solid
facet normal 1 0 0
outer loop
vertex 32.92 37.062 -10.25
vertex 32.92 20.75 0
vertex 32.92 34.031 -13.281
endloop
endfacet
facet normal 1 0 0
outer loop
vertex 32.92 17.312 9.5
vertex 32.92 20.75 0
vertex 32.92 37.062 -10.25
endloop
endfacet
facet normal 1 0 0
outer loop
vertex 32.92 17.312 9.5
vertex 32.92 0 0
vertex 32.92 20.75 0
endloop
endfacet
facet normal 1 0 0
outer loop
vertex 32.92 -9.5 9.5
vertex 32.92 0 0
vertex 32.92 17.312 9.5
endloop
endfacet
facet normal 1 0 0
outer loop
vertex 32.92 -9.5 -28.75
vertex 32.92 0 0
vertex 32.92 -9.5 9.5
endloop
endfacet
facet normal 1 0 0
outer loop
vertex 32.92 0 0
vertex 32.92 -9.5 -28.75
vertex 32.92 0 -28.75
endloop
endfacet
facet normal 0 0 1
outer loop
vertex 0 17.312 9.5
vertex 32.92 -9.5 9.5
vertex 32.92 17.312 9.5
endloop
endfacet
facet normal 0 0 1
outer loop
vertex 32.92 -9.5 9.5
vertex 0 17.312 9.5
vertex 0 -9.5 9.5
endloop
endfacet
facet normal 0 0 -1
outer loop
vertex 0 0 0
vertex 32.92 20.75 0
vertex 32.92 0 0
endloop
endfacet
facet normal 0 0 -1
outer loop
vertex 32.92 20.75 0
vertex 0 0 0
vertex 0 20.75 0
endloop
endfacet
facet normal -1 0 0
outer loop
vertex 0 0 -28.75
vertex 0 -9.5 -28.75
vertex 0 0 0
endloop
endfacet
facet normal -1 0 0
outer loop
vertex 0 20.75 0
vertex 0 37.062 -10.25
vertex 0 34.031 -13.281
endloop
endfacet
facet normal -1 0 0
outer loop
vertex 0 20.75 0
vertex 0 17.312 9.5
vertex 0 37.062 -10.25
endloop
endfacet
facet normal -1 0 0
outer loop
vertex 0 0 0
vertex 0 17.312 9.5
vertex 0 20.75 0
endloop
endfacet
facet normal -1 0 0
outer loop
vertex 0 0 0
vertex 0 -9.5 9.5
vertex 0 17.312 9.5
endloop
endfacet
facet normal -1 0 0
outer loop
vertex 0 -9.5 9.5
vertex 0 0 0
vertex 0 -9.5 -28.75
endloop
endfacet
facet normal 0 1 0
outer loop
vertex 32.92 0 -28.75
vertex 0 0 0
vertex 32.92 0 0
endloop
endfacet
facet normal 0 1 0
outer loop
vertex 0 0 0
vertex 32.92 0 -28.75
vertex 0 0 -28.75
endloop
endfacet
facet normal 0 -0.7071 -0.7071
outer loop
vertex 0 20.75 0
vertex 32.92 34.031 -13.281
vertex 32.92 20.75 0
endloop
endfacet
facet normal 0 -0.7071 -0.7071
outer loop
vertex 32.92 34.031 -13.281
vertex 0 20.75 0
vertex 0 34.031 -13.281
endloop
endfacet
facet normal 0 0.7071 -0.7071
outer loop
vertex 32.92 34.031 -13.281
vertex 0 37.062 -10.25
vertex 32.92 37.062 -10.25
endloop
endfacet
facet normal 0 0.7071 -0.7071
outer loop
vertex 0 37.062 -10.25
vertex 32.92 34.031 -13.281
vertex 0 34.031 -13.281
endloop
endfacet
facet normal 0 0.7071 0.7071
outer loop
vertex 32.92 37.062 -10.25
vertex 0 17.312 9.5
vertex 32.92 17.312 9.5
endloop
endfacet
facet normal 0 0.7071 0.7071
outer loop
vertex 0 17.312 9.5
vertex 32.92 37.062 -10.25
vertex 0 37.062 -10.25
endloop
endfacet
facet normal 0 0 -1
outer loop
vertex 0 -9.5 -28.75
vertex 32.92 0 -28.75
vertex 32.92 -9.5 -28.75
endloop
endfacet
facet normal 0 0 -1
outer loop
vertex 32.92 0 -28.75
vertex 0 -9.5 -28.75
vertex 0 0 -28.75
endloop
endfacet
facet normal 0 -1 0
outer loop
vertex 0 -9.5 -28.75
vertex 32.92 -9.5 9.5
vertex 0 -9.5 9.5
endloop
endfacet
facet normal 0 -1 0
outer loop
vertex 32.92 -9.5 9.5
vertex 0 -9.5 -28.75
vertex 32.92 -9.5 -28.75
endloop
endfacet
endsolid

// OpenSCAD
$fn=100;
WIDTH = 38.32 - 2.7 * 2;
DEPTH = 20.5 + 5;
HEIGHT = 9.5;

// back wall plate
 translate([ 0, -HEIGHT, +HEIGHT])
 rotate ([-90, 0, 0])
 cube([WIDTH, DEPTH * 1.5, HEIGHT], center = false);


 difference()
 {
    union()
    {
        // bottom
         color("RED")
         cube([WIDTH, DEPTH, HEIGHT], center = false);

         // angled part
         translate([ 0, DEPTH-HEIGHT, +HEIGHT/2])
         rotate ([-45, 0, 0])
         cube([WIDTH, DEPTH, HEIGHT/2], center = false);
    }
    
    //
     translate([ 0, DEPTH-HEIGHT, +HEIGHT * 2/3])
     rotate ([-45, 0, 0])
     translate([0, -4, HEIGHT/3 ])
     color("GREEN")
     cube([WIDTH, DEPTH*2, HEIGHT], center = false);
}
